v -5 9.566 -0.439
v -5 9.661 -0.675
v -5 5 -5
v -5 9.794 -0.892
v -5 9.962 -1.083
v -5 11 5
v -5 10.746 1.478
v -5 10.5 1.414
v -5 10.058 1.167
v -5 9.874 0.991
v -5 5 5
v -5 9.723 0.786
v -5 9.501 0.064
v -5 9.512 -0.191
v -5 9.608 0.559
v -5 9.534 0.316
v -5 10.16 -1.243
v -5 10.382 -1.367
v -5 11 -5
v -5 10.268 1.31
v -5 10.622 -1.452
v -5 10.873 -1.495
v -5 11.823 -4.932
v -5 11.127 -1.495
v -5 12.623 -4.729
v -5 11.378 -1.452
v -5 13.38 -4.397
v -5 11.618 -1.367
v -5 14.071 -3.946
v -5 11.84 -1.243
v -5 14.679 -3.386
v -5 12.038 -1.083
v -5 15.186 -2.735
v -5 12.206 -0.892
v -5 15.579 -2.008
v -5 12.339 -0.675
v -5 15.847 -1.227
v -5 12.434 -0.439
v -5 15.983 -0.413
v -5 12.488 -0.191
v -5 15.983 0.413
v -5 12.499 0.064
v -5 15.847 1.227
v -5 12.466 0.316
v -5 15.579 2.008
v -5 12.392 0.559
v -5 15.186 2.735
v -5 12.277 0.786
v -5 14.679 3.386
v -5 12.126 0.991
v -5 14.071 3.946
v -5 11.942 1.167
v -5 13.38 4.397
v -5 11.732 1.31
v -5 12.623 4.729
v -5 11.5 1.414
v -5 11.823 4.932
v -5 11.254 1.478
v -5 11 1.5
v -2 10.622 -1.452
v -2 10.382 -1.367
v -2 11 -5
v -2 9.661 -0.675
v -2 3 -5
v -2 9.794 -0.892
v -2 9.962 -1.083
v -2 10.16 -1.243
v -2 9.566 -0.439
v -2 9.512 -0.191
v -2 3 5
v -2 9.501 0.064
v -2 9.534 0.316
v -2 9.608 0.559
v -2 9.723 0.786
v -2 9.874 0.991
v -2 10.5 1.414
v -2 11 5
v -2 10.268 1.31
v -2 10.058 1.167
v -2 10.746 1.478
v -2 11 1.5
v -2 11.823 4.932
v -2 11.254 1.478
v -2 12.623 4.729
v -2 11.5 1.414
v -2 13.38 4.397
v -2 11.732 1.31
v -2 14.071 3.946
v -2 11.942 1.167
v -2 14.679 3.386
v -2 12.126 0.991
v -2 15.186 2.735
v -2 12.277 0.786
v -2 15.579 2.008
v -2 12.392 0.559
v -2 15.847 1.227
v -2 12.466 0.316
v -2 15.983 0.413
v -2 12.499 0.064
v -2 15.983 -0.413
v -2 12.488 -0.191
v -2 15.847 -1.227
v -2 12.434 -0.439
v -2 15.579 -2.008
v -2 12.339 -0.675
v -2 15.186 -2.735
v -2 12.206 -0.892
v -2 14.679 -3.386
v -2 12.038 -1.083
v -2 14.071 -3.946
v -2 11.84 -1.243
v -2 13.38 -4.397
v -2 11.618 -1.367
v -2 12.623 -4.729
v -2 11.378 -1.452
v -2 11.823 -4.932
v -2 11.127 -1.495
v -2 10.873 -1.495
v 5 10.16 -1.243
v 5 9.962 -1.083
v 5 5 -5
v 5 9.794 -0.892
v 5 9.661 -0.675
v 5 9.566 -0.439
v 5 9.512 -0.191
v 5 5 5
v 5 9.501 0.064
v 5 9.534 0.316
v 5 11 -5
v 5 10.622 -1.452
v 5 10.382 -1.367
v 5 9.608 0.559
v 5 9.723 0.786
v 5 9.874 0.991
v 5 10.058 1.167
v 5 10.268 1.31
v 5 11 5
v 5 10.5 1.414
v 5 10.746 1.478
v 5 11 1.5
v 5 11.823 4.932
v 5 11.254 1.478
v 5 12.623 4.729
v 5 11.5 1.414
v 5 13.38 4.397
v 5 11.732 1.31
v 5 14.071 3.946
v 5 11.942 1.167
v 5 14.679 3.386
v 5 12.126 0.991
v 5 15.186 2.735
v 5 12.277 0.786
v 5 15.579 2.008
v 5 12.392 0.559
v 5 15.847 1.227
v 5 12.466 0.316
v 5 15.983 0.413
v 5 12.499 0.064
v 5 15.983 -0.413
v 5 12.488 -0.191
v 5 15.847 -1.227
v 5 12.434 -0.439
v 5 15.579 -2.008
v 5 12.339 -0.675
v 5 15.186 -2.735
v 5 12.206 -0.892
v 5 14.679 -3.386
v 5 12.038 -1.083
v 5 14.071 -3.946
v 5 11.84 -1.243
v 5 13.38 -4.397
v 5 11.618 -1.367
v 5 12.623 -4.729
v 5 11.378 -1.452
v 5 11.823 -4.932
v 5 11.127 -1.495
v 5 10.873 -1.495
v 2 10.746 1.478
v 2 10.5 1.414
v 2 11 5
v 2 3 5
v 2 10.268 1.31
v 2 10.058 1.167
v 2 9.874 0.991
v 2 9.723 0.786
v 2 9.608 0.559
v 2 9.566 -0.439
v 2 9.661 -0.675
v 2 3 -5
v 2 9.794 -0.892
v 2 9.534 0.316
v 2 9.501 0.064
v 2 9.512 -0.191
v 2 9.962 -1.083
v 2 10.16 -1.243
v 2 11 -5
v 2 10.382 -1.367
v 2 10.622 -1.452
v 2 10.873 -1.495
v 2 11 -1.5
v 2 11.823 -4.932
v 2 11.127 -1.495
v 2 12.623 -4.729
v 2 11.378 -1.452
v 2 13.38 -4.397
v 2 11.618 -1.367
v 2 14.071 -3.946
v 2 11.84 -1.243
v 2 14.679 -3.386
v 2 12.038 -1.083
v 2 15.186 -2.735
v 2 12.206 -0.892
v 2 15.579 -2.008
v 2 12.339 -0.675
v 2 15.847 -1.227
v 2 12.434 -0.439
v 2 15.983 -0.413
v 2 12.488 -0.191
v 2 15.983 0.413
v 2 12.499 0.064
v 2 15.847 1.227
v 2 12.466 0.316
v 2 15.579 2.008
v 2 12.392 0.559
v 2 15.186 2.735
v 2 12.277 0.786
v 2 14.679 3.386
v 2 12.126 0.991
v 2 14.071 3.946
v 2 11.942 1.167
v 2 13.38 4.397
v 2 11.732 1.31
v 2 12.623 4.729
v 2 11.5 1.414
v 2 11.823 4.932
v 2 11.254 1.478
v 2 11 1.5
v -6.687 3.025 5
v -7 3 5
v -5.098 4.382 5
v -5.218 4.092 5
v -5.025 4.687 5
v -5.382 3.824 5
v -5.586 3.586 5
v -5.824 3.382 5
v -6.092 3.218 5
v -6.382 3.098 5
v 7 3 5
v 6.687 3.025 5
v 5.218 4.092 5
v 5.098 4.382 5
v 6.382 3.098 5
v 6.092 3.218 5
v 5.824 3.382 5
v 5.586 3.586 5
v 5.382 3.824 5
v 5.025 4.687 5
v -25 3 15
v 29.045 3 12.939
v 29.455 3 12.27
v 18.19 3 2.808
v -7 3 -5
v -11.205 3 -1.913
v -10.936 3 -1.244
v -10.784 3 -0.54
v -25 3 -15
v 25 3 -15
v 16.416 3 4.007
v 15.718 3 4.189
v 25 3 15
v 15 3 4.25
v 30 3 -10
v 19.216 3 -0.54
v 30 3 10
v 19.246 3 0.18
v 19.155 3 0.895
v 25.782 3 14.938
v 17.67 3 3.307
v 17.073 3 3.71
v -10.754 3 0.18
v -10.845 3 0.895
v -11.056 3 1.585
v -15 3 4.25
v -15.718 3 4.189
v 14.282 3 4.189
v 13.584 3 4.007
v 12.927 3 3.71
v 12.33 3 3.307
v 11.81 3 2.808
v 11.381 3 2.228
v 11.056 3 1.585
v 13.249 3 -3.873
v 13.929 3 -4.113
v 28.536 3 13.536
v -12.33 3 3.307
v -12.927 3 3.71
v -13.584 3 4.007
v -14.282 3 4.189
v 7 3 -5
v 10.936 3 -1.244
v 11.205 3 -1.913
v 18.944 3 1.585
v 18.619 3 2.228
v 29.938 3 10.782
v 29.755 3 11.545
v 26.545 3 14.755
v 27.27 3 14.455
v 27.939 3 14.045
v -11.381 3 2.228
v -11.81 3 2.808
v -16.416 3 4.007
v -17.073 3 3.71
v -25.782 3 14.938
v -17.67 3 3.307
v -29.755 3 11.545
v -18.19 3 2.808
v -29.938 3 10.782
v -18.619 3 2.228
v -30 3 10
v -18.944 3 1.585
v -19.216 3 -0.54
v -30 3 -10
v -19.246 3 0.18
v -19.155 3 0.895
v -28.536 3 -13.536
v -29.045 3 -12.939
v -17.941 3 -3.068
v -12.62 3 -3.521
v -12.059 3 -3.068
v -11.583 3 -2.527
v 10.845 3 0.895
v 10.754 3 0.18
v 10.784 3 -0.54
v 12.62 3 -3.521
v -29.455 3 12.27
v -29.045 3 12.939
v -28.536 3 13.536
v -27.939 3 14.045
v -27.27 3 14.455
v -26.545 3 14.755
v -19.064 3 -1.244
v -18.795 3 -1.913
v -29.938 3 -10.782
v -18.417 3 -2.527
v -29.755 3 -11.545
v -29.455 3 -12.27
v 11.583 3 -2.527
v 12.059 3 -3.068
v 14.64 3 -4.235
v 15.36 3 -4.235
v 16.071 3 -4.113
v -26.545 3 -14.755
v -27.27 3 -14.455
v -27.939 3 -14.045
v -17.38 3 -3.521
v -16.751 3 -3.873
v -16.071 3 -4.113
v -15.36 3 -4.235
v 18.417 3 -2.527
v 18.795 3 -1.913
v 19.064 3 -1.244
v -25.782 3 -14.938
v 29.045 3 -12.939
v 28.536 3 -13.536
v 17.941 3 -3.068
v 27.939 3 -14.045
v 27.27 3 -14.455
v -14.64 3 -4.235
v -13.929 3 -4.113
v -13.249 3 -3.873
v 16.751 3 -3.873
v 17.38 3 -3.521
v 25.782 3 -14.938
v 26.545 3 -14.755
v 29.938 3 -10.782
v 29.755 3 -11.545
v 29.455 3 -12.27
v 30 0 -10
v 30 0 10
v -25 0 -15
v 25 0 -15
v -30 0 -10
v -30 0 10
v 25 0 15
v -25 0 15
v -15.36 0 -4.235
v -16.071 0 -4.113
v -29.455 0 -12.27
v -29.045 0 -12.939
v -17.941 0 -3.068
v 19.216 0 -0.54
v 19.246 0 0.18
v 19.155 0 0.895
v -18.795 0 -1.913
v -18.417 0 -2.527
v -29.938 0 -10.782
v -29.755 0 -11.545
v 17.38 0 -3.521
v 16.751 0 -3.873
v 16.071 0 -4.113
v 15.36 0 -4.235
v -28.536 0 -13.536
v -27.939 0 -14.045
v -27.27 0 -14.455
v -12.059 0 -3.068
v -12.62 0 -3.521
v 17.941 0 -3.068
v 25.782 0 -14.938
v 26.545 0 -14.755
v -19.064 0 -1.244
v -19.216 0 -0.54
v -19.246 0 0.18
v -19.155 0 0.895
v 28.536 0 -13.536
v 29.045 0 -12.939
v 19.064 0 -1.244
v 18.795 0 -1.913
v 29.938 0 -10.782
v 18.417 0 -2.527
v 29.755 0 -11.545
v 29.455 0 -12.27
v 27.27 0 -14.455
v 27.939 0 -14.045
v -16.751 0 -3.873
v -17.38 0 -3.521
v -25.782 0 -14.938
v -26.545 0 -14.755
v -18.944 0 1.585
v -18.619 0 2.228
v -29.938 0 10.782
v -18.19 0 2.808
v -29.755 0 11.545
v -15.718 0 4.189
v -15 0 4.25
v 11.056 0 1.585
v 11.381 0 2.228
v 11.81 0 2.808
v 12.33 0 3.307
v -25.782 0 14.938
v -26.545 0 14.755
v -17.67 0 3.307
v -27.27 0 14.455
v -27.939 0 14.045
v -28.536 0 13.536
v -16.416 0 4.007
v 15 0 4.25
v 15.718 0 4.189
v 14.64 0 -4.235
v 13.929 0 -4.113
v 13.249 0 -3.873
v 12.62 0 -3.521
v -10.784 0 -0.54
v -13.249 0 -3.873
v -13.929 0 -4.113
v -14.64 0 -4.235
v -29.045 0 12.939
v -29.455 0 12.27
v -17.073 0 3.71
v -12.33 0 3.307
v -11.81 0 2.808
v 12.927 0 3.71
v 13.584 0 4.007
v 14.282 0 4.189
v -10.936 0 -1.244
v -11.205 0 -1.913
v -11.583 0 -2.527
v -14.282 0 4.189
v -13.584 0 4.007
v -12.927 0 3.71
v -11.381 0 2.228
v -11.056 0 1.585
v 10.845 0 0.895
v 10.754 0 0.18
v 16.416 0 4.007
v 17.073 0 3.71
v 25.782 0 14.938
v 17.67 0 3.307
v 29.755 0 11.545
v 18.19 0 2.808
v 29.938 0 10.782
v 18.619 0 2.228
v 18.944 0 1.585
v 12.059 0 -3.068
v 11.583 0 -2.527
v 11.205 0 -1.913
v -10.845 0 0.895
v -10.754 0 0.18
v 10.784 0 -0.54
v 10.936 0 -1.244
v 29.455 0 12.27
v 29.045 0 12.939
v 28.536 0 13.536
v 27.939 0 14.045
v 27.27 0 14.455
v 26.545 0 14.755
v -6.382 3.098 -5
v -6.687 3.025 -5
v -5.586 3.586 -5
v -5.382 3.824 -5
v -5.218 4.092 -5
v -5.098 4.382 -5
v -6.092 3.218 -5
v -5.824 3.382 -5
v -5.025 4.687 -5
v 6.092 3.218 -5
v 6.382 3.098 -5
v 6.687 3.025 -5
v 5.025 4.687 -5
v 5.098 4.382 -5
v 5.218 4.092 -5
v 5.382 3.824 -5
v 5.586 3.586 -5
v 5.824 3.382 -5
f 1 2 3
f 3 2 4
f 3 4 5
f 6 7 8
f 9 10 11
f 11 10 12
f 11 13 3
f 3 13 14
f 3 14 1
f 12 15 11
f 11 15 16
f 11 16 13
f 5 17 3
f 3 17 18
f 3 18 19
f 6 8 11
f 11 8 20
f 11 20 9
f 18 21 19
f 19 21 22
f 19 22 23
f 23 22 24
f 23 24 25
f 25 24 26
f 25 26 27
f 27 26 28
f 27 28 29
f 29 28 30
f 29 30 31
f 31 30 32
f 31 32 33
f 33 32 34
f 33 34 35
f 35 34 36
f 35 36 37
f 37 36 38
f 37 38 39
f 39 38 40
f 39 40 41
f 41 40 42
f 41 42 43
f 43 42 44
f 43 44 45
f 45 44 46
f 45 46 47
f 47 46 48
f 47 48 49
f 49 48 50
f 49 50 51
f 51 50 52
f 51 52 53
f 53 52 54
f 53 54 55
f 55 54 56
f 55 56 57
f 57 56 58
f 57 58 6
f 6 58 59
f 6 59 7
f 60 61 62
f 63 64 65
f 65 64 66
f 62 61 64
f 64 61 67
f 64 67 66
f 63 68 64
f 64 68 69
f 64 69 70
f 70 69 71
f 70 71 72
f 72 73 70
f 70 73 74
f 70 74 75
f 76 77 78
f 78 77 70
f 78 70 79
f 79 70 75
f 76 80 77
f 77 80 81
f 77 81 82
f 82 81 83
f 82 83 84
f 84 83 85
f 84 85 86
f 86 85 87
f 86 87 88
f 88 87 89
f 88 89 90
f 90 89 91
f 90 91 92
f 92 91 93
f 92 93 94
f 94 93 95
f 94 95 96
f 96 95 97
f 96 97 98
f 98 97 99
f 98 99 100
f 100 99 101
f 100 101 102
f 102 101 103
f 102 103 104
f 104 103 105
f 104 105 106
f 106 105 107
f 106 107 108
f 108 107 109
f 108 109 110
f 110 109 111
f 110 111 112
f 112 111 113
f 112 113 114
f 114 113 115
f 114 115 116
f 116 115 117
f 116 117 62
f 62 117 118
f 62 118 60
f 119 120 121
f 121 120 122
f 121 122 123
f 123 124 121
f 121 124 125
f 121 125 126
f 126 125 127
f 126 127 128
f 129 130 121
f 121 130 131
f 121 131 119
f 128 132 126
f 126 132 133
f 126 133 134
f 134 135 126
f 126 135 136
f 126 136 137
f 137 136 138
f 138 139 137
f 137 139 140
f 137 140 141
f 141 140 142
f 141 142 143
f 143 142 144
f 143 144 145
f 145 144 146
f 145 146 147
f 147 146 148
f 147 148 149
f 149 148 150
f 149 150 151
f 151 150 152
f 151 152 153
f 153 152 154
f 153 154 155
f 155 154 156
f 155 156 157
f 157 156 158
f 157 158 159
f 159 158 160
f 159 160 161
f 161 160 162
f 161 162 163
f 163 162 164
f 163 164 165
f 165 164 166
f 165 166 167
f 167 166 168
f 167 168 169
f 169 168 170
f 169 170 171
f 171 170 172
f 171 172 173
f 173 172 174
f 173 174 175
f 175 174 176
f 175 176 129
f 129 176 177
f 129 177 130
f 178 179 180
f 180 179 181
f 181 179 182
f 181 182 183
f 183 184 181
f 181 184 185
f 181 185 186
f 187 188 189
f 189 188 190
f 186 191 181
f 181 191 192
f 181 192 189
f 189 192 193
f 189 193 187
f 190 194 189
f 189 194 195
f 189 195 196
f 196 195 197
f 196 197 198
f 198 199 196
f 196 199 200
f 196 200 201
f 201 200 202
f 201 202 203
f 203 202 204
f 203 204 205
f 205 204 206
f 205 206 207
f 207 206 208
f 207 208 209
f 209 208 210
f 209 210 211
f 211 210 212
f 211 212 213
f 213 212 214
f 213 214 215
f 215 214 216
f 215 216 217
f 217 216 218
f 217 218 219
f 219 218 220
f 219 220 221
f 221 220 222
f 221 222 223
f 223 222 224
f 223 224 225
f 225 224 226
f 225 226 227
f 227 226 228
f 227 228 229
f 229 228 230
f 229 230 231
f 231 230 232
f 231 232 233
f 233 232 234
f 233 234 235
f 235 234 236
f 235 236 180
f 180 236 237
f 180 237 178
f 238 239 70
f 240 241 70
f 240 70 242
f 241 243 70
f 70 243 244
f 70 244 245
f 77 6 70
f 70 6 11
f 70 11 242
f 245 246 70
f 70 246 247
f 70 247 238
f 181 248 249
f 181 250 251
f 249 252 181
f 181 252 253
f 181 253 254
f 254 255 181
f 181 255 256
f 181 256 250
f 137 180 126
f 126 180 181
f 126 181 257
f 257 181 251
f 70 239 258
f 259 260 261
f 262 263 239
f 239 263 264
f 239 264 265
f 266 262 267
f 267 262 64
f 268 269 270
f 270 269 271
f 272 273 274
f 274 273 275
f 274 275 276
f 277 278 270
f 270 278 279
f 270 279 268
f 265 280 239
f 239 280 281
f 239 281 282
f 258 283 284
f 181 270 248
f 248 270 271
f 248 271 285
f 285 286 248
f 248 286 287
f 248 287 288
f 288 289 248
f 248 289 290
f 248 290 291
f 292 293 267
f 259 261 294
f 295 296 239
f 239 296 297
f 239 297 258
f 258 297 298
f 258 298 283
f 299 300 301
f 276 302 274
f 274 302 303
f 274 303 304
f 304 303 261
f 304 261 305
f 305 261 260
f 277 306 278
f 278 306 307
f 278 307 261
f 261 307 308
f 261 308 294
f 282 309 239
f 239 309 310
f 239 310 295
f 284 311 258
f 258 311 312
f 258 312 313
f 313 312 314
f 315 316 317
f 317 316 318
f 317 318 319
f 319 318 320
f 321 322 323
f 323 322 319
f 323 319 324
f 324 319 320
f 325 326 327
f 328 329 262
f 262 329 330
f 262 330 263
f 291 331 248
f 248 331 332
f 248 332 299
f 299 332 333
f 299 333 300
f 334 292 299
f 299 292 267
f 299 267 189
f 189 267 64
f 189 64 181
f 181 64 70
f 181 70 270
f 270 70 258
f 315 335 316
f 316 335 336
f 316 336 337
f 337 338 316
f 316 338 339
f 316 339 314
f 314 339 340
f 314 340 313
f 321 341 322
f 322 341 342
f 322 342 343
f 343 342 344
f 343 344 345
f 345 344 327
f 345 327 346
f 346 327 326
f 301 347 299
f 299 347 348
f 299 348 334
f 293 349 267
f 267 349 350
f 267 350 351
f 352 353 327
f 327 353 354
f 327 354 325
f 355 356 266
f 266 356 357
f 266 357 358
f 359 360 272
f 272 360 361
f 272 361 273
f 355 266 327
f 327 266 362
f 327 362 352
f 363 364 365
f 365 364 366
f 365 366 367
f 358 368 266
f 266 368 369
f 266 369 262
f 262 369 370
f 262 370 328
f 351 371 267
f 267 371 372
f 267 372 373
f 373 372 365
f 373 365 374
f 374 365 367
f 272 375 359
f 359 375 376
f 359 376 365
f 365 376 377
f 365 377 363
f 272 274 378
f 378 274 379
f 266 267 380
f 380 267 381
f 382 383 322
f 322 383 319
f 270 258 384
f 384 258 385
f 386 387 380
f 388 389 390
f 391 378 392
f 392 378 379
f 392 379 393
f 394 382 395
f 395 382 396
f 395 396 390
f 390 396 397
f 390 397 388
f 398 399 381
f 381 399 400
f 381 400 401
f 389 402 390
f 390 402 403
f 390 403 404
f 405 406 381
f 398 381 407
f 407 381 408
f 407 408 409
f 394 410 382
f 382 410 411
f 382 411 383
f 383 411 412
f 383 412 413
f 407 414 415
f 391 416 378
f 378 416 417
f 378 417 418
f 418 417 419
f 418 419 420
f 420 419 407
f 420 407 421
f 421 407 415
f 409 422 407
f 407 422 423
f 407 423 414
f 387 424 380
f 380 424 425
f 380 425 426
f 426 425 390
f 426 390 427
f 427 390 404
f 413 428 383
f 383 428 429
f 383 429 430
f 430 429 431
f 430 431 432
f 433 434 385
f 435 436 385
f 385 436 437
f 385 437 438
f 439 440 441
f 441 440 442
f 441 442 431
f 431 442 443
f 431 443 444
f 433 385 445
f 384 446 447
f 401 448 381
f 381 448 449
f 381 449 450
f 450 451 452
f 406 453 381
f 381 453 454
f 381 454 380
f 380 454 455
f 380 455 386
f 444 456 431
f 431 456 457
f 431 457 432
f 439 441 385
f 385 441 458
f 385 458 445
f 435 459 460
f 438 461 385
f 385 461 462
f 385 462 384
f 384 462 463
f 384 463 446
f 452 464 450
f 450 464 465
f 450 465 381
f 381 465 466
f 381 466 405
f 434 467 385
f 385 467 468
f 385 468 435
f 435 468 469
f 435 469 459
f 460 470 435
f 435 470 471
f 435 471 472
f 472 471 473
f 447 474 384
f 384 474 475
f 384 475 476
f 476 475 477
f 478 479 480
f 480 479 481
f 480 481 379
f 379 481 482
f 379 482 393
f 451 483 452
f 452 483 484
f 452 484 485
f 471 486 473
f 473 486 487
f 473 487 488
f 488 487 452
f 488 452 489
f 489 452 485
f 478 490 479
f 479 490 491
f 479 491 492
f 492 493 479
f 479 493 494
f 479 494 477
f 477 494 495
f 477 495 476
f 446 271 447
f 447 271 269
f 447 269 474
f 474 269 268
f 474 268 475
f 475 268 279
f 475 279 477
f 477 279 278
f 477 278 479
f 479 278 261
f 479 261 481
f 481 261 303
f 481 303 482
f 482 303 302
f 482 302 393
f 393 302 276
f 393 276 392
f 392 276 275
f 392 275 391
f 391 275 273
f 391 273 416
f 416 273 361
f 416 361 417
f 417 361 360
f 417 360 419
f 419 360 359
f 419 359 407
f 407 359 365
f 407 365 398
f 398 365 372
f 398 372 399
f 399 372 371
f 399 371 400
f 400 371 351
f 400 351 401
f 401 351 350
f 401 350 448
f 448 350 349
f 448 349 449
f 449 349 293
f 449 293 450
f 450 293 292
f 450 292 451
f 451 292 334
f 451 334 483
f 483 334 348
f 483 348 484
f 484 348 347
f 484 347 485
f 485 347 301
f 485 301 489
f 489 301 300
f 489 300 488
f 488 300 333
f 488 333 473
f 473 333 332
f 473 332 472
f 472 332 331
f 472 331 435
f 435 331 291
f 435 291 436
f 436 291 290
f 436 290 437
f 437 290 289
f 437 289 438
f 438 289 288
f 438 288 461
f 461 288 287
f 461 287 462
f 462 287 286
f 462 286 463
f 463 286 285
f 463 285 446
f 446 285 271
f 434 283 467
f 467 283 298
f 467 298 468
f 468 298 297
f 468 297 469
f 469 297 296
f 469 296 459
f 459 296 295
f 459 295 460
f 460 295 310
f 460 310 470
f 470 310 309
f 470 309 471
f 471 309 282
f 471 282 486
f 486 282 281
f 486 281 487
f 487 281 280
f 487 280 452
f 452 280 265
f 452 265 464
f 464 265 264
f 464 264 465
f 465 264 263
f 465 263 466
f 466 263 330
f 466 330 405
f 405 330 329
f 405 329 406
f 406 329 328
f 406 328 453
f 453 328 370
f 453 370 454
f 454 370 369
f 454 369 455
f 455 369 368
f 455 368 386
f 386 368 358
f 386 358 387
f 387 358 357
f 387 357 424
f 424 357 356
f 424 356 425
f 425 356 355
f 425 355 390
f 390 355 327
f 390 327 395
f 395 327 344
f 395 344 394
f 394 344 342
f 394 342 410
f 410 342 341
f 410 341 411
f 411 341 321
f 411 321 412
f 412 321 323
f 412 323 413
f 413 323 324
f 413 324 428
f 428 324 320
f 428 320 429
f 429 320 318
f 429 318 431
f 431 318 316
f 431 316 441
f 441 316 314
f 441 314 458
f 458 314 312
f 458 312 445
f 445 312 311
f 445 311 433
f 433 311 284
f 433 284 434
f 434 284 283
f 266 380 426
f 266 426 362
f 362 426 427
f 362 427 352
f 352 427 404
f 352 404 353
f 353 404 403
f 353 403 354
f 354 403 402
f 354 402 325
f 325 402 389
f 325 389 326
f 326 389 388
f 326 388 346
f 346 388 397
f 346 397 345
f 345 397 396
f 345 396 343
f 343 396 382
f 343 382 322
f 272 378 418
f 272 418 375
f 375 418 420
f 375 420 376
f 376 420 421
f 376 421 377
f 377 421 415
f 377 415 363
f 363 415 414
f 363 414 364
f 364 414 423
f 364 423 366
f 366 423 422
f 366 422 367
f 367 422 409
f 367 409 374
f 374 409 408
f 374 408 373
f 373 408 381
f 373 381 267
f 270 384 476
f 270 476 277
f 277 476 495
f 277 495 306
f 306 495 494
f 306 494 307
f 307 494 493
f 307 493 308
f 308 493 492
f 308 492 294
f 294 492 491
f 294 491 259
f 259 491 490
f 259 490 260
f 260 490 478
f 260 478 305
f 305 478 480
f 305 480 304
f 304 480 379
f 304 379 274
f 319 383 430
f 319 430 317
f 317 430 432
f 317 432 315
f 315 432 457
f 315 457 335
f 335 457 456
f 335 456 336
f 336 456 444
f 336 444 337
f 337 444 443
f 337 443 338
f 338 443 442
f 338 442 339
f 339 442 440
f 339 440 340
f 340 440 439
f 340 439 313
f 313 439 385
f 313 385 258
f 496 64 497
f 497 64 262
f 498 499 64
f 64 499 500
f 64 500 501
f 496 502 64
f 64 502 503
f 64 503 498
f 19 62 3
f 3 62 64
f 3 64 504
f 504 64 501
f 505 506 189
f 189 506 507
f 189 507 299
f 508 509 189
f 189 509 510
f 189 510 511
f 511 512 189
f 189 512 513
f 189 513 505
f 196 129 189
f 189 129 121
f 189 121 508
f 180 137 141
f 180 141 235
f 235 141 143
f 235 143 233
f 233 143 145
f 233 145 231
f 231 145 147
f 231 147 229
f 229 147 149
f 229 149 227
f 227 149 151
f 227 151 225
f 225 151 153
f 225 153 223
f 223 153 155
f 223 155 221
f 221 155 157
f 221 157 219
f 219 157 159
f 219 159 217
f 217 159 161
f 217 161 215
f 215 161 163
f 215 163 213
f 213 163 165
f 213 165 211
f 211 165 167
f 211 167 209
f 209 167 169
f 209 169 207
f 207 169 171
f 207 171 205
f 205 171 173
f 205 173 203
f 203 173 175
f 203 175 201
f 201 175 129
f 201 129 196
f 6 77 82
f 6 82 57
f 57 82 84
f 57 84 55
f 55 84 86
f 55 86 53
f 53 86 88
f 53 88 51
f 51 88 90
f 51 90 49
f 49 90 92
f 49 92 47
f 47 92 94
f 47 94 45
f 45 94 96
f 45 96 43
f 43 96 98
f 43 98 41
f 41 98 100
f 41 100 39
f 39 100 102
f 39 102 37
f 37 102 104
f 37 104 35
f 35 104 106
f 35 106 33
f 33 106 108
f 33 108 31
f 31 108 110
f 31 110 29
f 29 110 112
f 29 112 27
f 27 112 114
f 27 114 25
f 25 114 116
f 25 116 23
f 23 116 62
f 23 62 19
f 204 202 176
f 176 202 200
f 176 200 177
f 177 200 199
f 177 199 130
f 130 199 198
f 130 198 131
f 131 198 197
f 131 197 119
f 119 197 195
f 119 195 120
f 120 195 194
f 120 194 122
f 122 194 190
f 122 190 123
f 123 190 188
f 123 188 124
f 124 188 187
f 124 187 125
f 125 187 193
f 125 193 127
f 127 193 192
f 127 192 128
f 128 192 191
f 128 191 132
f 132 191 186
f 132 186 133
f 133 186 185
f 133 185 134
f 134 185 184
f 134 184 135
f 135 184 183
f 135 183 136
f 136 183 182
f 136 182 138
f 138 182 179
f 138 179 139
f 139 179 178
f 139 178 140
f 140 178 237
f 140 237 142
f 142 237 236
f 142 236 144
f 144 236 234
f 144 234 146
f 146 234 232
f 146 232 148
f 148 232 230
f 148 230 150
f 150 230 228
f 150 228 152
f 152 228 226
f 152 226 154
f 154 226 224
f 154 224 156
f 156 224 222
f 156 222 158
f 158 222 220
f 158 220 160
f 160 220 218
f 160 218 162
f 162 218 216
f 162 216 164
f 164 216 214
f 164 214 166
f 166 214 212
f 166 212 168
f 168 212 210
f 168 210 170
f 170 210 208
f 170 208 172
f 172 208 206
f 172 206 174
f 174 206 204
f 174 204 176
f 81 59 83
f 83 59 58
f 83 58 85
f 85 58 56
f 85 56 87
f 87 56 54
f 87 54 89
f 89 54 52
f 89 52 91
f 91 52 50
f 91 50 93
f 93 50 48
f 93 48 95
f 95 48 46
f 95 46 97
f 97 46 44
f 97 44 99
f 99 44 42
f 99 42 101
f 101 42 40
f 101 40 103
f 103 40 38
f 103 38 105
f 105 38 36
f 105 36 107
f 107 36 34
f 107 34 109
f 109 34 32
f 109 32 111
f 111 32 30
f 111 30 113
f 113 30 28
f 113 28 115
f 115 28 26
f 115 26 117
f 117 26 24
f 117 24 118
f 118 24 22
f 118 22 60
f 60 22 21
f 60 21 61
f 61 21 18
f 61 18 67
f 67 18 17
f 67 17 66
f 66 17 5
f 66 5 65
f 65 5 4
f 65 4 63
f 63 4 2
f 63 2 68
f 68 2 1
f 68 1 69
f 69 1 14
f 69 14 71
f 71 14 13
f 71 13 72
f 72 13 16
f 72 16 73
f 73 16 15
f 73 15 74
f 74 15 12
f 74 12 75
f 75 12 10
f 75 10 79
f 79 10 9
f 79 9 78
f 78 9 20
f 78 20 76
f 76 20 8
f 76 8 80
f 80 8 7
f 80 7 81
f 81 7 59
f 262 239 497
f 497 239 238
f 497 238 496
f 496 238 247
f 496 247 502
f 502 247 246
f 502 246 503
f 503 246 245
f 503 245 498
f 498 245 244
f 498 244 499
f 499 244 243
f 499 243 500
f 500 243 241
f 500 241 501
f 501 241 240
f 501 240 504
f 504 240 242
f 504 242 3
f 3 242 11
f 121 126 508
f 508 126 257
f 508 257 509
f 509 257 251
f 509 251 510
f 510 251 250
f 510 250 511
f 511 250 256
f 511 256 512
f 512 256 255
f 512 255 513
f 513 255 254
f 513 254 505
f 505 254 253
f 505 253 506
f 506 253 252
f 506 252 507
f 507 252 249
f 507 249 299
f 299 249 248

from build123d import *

# Parameters (mm, degrees)
CROQUIS1_W              = 60
CROQUIS1_H              = 30
SALIENTE_EXTRUIR1_DEPTH = 3
CROQUIS2_R              = 4.25
CORTAR_EXTRUIR1_DEPTH   = 3
REDONDEO1_R             = 5
CROQUIS4_W              = 3
CROQUIS4_H              = 10
SALIENTE_EXTRUIR2_DEPTH = 13
CORTAR_EXTRUIR2_DEPTH   = 13
CROQUIS6_R              = 1.5
CORTAR_EXTRUIR3_DEPTH   = 13
SALIENTE_EXTRUIR3_DEPTH = 10


with BuildPart() as part:
    # Croquis1 → Saliente-Extruir1 (new body)
    with BuildSketch(Plane(origin=(0, 0, 0), x_dir=(1, 0, 0), z_dir=(0, 1, 0))):
        Rectangle(CROQUIS1_W, CROQUIS1_H)
    extrude(amount=SALIENTE_EXTRUIR1_DEPTH)

    # Croquis2 → Cortar-Extruir1 (cut)
    with BuildSketch(Plane(origin=(0, 3, 0), x_dir=(1, 0, 0), z_dir=(0, 1, 0))):
        with Locations(Location((-15, 0, 0), (0, 0, 270))):
            Circle(CROQUIS2_R)
        with Locations(Location((15, 0, 0), (0, 0, 270))):
            Circle(CROQUIS2_R)
    extrude(amount=-CORTAR_EXTRUIR1_DEPTH, mode=Mode.SUBTRACT)

    # Redondeo1
    redondeo1_edges = [part.edges().sort_by_distance(p)[0] for p in [
        (30, 1.5, 15),
        (-30, 1.5, 15),
        (-30, 1.5, -15),
        (30, 1.5, -15),
    ]]
    fillet(redondeo1_edges, radius=REDONDEO1_R)

    # Croquis4 → Saliente-Extruir2 (add)
    with BuildSketch(Plane(origin=(0, 3, 0), x_dir=(1, 0, 0), z_dir=(0, 1, 0))):
        with Locations((-3.5, 0)):
            Rectangle(CROQUIS4_W, CROQUIS4_H)
        with Locations((3.5, 0)):
            Rectangle(CROQUIS4_W, CROQUIS4_H)
    extrude(amount=SALIENTE_EXTRUIR2_DEPTH)

    # Croquis5 → Cortar-Extruir2 (cut)
    with BuildSketch(Plane(origin=(5, 0, 0), x_dir=(0, 0, -1), z_dir=(1, 0, 0))):
        with BuildLine():
            Line((-5, 16), (-5, 11))
            ThreePointArc((-5, 11), (-3.535533906, 14.535533906), (0, 16))
            Line((0, 16), (-5, 16))
        make_face()
        with BuildLine():
            ThreePointArc((0, 16), (3.535533906, 14.535533906), (5, 11))
            Line((5, 11), (5, 16))
            Line((5, 16), (0, 16))
        make_face()
    extrude(amount=-CORTAR_EXTRUIR2_DEPTH, mode=Mode.SUBTRACT)

    # Croquis6 → Cortar-Extruir3 (cut)
    with BuildSketch(Plane.ZY.offset(5)):
        with Locations((0, 11)):
            Circle(CROQUIS6_R)
    extrude(amount=-CORTAR_EXTRUIR3_DEPTH, mode=Mode.SUBTRACT)

    # Croquis7 → Saliente-Extruir3 (add)
    with BuildSketch(Plane.XY.offset(5)):
        with BuildLine():
            Line((-7, 3), (-5, 3))
            Line((-5, 3), (-5, 5))
            ThreePointArc((-5, 5), (-5.585786438, 3.585786438), (-7, 3))
        make_face()
        with BuildLine():
            Line((5, 5), (5, 3))
            Line((5, 3), (7, 3))
            ThreePointArc((7, 3), (5.585786438, 3.585786438), (5, 5))
        make_face()
    extrude(amount=-SALIENTE_EXTRUIR3_DEPTH)


solid = part.part
